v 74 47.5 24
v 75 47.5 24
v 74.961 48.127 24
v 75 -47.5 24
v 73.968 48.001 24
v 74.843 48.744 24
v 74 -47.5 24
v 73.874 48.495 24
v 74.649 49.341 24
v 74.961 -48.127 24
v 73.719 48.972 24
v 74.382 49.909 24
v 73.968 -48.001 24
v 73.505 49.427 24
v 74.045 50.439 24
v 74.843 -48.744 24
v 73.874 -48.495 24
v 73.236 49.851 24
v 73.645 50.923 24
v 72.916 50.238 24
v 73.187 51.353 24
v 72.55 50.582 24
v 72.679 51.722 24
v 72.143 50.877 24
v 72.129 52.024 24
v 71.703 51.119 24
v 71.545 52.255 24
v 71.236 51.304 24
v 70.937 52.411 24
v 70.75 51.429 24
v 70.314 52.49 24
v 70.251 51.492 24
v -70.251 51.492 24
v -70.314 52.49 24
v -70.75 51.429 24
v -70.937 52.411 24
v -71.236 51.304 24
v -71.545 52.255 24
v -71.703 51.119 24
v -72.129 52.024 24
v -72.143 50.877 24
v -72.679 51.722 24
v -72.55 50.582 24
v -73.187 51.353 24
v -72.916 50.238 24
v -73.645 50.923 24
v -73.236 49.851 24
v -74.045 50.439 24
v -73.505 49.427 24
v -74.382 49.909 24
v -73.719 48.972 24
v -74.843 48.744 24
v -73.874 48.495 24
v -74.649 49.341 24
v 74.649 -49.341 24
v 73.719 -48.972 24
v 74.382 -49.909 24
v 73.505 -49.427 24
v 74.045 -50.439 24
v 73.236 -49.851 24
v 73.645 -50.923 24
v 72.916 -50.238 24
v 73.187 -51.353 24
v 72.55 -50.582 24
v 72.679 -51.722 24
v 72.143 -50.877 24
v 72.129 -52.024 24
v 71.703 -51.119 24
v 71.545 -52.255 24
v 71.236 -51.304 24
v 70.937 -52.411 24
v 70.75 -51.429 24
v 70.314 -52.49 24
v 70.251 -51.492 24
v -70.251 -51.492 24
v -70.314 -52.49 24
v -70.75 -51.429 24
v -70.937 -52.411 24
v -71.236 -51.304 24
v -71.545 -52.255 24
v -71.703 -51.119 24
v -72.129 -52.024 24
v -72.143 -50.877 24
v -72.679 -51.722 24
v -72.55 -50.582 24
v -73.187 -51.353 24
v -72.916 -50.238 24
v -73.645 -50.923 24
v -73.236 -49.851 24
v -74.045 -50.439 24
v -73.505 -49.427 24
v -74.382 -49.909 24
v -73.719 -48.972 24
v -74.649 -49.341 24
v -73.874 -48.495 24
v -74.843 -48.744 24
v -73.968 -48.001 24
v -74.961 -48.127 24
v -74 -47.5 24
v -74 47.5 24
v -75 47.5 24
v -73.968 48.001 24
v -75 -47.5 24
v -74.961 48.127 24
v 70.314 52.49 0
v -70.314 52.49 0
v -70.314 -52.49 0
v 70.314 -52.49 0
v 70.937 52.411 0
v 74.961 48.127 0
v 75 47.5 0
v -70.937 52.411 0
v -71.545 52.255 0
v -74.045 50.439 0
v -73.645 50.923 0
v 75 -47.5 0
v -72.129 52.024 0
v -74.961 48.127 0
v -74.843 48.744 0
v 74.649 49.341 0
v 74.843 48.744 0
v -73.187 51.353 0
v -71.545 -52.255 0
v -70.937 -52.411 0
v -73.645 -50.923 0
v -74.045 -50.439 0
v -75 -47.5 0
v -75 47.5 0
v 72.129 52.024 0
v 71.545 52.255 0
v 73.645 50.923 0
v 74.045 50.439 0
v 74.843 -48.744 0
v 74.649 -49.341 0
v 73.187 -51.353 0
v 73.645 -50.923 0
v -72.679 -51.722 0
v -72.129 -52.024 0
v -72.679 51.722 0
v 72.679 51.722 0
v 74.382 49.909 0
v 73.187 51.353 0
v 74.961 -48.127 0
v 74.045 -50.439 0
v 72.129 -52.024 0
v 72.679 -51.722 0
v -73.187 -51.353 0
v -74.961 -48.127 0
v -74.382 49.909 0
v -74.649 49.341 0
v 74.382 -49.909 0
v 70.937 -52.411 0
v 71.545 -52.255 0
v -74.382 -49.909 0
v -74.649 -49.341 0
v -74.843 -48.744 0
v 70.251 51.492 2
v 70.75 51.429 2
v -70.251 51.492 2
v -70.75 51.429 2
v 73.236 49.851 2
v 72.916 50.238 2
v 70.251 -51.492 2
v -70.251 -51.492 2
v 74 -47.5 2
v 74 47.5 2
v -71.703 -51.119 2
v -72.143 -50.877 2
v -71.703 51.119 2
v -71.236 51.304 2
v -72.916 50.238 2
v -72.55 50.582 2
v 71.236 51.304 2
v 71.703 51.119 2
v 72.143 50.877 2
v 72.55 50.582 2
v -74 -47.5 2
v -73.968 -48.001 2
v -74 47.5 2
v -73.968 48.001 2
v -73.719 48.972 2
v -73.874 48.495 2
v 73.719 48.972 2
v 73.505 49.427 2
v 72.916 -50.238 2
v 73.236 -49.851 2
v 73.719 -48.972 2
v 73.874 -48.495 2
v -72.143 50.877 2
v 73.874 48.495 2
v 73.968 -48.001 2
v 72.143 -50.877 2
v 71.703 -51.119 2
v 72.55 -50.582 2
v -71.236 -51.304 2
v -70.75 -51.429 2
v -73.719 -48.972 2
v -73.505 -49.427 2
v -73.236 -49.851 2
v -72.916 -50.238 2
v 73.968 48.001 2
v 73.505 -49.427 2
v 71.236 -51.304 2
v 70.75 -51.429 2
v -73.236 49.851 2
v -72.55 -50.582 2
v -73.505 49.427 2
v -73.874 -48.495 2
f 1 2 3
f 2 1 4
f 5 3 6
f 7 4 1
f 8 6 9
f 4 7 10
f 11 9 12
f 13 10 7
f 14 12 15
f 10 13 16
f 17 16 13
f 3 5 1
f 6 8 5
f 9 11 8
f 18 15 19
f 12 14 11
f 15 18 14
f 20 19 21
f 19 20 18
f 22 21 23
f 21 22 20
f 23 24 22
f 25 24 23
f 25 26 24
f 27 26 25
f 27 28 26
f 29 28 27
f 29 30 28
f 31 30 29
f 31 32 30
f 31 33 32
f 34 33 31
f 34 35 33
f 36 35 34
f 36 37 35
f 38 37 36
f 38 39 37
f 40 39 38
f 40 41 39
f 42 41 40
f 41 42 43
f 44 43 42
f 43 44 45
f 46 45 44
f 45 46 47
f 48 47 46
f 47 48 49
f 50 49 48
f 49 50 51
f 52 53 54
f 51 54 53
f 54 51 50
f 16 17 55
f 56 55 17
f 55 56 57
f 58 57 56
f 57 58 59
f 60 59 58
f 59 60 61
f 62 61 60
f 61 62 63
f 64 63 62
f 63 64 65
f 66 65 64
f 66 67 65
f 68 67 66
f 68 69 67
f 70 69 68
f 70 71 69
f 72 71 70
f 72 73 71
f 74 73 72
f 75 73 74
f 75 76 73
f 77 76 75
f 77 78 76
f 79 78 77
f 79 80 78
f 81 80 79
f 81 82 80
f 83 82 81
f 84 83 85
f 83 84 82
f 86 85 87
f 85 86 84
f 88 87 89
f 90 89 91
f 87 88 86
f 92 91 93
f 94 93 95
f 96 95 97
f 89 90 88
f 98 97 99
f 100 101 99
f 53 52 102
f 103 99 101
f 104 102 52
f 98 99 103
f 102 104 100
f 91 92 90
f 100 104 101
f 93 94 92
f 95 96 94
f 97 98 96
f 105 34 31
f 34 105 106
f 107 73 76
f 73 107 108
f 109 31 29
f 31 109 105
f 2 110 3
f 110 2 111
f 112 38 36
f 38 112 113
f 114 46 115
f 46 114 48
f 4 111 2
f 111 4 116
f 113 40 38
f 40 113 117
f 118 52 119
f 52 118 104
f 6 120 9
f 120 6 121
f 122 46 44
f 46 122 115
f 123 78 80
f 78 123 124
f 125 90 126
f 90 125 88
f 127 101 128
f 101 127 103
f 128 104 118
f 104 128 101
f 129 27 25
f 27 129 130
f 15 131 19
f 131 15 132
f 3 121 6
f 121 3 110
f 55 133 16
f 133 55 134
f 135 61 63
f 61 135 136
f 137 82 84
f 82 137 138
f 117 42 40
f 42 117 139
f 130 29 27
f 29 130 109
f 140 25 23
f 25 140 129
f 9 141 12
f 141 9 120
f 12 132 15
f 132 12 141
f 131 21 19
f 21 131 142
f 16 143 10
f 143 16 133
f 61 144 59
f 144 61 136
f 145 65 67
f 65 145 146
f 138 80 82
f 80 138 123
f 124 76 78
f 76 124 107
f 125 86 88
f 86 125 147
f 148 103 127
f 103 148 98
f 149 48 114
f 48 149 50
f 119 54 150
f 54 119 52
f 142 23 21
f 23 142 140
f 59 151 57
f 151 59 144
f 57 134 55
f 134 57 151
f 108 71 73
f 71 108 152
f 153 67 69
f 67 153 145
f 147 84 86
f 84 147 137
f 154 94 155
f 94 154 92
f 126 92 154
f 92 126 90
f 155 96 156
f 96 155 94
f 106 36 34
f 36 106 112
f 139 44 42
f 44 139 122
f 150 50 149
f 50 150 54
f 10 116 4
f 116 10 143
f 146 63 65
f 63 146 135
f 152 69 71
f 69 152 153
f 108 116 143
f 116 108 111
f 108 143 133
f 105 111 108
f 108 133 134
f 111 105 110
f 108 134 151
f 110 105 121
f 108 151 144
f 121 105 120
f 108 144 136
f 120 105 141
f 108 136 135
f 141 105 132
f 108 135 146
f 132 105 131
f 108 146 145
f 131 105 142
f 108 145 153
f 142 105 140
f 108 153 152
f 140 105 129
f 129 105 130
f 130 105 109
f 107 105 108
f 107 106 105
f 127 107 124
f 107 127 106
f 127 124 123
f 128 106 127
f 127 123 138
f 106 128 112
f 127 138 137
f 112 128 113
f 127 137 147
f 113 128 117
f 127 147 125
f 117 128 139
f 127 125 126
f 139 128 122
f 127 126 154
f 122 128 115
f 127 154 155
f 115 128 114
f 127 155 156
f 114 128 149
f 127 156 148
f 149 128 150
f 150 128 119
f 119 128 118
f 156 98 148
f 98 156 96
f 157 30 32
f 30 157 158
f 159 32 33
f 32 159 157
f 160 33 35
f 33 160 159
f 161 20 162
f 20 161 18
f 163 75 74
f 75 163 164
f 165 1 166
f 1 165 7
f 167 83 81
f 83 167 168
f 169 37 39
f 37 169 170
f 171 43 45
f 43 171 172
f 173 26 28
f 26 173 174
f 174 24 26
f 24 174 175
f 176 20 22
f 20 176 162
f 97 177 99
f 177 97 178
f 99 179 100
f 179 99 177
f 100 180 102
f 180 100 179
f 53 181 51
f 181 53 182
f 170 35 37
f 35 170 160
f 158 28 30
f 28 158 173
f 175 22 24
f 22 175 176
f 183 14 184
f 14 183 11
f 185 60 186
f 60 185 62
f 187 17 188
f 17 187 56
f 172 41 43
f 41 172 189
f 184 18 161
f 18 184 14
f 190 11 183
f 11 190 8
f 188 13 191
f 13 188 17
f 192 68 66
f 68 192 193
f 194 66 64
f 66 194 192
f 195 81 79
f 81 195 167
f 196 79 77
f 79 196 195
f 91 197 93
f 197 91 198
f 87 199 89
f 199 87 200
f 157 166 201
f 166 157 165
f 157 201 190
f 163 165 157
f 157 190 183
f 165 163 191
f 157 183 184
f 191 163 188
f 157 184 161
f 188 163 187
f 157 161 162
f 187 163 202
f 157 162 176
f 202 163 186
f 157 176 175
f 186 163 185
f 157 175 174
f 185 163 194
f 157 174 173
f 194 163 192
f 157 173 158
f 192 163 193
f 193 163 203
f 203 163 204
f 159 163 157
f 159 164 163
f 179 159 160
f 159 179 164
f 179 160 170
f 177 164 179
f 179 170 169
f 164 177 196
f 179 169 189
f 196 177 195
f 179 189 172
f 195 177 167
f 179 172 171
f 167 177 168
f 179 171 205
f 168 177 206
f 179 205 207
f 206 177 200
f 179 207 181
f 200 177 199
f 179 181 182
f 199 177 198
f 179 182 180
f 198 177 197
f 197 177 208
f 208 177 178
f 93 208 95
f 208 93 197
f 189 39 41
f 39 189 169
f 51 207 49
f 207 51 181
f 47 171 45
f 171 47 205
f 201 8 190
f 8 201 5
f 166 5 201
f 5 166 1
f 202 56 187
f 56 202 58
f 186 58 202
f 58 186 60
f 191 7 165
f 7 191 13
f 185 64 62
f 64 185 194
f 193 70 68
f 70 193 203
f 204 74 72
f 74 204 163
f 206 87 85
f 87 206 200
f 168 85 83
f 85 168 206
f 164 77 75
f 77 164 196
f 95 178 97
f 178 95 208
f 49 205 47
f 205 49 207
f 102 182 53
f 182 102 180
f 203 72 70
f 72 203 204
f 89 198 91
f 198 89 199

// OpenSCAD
$fn = 50;


difference() {
	union() {
		hull() {
			translate(v = [-70.0000000000, 47.5000000000, 0]) {
				cylinder(h = 24, r = 5);
			}
			translate(v = [70.0000000000, 47.5000000000, 0]) {
				cylinder(h = 24, r = 5);
			}
			translate(v = [-70.0000000000, -47.5000000000, 0]) {
				cylinder(h = 24, r = 5);
			}
			translate(v = [70.0000000000, -47.5000000000, 0]) {
				cylinder(h = 24, r = 5);
			}
		}
	}
	union() {
		translate(v = [0, 0, 2]) {
			hull() {
				translate(v = [-70.0000000000, 47.5000000000, 0]) {
					cylinder(h = 22, r = 4);
				}
				translate(v = [70.0000000000, 47.5000000000, 0]) {
					cylinder(h = 22, r = 4);
				}
				translate(v = [-70.0000000000, -47.5000000000, 0]) {
					cylinder(h = 22, r = 4);
				}
				translate(v = [70.0000000000, -47.5000000000, 0]) {
					cylinder(h = 22, r = 4);
				}
			}
		}
	}
}
